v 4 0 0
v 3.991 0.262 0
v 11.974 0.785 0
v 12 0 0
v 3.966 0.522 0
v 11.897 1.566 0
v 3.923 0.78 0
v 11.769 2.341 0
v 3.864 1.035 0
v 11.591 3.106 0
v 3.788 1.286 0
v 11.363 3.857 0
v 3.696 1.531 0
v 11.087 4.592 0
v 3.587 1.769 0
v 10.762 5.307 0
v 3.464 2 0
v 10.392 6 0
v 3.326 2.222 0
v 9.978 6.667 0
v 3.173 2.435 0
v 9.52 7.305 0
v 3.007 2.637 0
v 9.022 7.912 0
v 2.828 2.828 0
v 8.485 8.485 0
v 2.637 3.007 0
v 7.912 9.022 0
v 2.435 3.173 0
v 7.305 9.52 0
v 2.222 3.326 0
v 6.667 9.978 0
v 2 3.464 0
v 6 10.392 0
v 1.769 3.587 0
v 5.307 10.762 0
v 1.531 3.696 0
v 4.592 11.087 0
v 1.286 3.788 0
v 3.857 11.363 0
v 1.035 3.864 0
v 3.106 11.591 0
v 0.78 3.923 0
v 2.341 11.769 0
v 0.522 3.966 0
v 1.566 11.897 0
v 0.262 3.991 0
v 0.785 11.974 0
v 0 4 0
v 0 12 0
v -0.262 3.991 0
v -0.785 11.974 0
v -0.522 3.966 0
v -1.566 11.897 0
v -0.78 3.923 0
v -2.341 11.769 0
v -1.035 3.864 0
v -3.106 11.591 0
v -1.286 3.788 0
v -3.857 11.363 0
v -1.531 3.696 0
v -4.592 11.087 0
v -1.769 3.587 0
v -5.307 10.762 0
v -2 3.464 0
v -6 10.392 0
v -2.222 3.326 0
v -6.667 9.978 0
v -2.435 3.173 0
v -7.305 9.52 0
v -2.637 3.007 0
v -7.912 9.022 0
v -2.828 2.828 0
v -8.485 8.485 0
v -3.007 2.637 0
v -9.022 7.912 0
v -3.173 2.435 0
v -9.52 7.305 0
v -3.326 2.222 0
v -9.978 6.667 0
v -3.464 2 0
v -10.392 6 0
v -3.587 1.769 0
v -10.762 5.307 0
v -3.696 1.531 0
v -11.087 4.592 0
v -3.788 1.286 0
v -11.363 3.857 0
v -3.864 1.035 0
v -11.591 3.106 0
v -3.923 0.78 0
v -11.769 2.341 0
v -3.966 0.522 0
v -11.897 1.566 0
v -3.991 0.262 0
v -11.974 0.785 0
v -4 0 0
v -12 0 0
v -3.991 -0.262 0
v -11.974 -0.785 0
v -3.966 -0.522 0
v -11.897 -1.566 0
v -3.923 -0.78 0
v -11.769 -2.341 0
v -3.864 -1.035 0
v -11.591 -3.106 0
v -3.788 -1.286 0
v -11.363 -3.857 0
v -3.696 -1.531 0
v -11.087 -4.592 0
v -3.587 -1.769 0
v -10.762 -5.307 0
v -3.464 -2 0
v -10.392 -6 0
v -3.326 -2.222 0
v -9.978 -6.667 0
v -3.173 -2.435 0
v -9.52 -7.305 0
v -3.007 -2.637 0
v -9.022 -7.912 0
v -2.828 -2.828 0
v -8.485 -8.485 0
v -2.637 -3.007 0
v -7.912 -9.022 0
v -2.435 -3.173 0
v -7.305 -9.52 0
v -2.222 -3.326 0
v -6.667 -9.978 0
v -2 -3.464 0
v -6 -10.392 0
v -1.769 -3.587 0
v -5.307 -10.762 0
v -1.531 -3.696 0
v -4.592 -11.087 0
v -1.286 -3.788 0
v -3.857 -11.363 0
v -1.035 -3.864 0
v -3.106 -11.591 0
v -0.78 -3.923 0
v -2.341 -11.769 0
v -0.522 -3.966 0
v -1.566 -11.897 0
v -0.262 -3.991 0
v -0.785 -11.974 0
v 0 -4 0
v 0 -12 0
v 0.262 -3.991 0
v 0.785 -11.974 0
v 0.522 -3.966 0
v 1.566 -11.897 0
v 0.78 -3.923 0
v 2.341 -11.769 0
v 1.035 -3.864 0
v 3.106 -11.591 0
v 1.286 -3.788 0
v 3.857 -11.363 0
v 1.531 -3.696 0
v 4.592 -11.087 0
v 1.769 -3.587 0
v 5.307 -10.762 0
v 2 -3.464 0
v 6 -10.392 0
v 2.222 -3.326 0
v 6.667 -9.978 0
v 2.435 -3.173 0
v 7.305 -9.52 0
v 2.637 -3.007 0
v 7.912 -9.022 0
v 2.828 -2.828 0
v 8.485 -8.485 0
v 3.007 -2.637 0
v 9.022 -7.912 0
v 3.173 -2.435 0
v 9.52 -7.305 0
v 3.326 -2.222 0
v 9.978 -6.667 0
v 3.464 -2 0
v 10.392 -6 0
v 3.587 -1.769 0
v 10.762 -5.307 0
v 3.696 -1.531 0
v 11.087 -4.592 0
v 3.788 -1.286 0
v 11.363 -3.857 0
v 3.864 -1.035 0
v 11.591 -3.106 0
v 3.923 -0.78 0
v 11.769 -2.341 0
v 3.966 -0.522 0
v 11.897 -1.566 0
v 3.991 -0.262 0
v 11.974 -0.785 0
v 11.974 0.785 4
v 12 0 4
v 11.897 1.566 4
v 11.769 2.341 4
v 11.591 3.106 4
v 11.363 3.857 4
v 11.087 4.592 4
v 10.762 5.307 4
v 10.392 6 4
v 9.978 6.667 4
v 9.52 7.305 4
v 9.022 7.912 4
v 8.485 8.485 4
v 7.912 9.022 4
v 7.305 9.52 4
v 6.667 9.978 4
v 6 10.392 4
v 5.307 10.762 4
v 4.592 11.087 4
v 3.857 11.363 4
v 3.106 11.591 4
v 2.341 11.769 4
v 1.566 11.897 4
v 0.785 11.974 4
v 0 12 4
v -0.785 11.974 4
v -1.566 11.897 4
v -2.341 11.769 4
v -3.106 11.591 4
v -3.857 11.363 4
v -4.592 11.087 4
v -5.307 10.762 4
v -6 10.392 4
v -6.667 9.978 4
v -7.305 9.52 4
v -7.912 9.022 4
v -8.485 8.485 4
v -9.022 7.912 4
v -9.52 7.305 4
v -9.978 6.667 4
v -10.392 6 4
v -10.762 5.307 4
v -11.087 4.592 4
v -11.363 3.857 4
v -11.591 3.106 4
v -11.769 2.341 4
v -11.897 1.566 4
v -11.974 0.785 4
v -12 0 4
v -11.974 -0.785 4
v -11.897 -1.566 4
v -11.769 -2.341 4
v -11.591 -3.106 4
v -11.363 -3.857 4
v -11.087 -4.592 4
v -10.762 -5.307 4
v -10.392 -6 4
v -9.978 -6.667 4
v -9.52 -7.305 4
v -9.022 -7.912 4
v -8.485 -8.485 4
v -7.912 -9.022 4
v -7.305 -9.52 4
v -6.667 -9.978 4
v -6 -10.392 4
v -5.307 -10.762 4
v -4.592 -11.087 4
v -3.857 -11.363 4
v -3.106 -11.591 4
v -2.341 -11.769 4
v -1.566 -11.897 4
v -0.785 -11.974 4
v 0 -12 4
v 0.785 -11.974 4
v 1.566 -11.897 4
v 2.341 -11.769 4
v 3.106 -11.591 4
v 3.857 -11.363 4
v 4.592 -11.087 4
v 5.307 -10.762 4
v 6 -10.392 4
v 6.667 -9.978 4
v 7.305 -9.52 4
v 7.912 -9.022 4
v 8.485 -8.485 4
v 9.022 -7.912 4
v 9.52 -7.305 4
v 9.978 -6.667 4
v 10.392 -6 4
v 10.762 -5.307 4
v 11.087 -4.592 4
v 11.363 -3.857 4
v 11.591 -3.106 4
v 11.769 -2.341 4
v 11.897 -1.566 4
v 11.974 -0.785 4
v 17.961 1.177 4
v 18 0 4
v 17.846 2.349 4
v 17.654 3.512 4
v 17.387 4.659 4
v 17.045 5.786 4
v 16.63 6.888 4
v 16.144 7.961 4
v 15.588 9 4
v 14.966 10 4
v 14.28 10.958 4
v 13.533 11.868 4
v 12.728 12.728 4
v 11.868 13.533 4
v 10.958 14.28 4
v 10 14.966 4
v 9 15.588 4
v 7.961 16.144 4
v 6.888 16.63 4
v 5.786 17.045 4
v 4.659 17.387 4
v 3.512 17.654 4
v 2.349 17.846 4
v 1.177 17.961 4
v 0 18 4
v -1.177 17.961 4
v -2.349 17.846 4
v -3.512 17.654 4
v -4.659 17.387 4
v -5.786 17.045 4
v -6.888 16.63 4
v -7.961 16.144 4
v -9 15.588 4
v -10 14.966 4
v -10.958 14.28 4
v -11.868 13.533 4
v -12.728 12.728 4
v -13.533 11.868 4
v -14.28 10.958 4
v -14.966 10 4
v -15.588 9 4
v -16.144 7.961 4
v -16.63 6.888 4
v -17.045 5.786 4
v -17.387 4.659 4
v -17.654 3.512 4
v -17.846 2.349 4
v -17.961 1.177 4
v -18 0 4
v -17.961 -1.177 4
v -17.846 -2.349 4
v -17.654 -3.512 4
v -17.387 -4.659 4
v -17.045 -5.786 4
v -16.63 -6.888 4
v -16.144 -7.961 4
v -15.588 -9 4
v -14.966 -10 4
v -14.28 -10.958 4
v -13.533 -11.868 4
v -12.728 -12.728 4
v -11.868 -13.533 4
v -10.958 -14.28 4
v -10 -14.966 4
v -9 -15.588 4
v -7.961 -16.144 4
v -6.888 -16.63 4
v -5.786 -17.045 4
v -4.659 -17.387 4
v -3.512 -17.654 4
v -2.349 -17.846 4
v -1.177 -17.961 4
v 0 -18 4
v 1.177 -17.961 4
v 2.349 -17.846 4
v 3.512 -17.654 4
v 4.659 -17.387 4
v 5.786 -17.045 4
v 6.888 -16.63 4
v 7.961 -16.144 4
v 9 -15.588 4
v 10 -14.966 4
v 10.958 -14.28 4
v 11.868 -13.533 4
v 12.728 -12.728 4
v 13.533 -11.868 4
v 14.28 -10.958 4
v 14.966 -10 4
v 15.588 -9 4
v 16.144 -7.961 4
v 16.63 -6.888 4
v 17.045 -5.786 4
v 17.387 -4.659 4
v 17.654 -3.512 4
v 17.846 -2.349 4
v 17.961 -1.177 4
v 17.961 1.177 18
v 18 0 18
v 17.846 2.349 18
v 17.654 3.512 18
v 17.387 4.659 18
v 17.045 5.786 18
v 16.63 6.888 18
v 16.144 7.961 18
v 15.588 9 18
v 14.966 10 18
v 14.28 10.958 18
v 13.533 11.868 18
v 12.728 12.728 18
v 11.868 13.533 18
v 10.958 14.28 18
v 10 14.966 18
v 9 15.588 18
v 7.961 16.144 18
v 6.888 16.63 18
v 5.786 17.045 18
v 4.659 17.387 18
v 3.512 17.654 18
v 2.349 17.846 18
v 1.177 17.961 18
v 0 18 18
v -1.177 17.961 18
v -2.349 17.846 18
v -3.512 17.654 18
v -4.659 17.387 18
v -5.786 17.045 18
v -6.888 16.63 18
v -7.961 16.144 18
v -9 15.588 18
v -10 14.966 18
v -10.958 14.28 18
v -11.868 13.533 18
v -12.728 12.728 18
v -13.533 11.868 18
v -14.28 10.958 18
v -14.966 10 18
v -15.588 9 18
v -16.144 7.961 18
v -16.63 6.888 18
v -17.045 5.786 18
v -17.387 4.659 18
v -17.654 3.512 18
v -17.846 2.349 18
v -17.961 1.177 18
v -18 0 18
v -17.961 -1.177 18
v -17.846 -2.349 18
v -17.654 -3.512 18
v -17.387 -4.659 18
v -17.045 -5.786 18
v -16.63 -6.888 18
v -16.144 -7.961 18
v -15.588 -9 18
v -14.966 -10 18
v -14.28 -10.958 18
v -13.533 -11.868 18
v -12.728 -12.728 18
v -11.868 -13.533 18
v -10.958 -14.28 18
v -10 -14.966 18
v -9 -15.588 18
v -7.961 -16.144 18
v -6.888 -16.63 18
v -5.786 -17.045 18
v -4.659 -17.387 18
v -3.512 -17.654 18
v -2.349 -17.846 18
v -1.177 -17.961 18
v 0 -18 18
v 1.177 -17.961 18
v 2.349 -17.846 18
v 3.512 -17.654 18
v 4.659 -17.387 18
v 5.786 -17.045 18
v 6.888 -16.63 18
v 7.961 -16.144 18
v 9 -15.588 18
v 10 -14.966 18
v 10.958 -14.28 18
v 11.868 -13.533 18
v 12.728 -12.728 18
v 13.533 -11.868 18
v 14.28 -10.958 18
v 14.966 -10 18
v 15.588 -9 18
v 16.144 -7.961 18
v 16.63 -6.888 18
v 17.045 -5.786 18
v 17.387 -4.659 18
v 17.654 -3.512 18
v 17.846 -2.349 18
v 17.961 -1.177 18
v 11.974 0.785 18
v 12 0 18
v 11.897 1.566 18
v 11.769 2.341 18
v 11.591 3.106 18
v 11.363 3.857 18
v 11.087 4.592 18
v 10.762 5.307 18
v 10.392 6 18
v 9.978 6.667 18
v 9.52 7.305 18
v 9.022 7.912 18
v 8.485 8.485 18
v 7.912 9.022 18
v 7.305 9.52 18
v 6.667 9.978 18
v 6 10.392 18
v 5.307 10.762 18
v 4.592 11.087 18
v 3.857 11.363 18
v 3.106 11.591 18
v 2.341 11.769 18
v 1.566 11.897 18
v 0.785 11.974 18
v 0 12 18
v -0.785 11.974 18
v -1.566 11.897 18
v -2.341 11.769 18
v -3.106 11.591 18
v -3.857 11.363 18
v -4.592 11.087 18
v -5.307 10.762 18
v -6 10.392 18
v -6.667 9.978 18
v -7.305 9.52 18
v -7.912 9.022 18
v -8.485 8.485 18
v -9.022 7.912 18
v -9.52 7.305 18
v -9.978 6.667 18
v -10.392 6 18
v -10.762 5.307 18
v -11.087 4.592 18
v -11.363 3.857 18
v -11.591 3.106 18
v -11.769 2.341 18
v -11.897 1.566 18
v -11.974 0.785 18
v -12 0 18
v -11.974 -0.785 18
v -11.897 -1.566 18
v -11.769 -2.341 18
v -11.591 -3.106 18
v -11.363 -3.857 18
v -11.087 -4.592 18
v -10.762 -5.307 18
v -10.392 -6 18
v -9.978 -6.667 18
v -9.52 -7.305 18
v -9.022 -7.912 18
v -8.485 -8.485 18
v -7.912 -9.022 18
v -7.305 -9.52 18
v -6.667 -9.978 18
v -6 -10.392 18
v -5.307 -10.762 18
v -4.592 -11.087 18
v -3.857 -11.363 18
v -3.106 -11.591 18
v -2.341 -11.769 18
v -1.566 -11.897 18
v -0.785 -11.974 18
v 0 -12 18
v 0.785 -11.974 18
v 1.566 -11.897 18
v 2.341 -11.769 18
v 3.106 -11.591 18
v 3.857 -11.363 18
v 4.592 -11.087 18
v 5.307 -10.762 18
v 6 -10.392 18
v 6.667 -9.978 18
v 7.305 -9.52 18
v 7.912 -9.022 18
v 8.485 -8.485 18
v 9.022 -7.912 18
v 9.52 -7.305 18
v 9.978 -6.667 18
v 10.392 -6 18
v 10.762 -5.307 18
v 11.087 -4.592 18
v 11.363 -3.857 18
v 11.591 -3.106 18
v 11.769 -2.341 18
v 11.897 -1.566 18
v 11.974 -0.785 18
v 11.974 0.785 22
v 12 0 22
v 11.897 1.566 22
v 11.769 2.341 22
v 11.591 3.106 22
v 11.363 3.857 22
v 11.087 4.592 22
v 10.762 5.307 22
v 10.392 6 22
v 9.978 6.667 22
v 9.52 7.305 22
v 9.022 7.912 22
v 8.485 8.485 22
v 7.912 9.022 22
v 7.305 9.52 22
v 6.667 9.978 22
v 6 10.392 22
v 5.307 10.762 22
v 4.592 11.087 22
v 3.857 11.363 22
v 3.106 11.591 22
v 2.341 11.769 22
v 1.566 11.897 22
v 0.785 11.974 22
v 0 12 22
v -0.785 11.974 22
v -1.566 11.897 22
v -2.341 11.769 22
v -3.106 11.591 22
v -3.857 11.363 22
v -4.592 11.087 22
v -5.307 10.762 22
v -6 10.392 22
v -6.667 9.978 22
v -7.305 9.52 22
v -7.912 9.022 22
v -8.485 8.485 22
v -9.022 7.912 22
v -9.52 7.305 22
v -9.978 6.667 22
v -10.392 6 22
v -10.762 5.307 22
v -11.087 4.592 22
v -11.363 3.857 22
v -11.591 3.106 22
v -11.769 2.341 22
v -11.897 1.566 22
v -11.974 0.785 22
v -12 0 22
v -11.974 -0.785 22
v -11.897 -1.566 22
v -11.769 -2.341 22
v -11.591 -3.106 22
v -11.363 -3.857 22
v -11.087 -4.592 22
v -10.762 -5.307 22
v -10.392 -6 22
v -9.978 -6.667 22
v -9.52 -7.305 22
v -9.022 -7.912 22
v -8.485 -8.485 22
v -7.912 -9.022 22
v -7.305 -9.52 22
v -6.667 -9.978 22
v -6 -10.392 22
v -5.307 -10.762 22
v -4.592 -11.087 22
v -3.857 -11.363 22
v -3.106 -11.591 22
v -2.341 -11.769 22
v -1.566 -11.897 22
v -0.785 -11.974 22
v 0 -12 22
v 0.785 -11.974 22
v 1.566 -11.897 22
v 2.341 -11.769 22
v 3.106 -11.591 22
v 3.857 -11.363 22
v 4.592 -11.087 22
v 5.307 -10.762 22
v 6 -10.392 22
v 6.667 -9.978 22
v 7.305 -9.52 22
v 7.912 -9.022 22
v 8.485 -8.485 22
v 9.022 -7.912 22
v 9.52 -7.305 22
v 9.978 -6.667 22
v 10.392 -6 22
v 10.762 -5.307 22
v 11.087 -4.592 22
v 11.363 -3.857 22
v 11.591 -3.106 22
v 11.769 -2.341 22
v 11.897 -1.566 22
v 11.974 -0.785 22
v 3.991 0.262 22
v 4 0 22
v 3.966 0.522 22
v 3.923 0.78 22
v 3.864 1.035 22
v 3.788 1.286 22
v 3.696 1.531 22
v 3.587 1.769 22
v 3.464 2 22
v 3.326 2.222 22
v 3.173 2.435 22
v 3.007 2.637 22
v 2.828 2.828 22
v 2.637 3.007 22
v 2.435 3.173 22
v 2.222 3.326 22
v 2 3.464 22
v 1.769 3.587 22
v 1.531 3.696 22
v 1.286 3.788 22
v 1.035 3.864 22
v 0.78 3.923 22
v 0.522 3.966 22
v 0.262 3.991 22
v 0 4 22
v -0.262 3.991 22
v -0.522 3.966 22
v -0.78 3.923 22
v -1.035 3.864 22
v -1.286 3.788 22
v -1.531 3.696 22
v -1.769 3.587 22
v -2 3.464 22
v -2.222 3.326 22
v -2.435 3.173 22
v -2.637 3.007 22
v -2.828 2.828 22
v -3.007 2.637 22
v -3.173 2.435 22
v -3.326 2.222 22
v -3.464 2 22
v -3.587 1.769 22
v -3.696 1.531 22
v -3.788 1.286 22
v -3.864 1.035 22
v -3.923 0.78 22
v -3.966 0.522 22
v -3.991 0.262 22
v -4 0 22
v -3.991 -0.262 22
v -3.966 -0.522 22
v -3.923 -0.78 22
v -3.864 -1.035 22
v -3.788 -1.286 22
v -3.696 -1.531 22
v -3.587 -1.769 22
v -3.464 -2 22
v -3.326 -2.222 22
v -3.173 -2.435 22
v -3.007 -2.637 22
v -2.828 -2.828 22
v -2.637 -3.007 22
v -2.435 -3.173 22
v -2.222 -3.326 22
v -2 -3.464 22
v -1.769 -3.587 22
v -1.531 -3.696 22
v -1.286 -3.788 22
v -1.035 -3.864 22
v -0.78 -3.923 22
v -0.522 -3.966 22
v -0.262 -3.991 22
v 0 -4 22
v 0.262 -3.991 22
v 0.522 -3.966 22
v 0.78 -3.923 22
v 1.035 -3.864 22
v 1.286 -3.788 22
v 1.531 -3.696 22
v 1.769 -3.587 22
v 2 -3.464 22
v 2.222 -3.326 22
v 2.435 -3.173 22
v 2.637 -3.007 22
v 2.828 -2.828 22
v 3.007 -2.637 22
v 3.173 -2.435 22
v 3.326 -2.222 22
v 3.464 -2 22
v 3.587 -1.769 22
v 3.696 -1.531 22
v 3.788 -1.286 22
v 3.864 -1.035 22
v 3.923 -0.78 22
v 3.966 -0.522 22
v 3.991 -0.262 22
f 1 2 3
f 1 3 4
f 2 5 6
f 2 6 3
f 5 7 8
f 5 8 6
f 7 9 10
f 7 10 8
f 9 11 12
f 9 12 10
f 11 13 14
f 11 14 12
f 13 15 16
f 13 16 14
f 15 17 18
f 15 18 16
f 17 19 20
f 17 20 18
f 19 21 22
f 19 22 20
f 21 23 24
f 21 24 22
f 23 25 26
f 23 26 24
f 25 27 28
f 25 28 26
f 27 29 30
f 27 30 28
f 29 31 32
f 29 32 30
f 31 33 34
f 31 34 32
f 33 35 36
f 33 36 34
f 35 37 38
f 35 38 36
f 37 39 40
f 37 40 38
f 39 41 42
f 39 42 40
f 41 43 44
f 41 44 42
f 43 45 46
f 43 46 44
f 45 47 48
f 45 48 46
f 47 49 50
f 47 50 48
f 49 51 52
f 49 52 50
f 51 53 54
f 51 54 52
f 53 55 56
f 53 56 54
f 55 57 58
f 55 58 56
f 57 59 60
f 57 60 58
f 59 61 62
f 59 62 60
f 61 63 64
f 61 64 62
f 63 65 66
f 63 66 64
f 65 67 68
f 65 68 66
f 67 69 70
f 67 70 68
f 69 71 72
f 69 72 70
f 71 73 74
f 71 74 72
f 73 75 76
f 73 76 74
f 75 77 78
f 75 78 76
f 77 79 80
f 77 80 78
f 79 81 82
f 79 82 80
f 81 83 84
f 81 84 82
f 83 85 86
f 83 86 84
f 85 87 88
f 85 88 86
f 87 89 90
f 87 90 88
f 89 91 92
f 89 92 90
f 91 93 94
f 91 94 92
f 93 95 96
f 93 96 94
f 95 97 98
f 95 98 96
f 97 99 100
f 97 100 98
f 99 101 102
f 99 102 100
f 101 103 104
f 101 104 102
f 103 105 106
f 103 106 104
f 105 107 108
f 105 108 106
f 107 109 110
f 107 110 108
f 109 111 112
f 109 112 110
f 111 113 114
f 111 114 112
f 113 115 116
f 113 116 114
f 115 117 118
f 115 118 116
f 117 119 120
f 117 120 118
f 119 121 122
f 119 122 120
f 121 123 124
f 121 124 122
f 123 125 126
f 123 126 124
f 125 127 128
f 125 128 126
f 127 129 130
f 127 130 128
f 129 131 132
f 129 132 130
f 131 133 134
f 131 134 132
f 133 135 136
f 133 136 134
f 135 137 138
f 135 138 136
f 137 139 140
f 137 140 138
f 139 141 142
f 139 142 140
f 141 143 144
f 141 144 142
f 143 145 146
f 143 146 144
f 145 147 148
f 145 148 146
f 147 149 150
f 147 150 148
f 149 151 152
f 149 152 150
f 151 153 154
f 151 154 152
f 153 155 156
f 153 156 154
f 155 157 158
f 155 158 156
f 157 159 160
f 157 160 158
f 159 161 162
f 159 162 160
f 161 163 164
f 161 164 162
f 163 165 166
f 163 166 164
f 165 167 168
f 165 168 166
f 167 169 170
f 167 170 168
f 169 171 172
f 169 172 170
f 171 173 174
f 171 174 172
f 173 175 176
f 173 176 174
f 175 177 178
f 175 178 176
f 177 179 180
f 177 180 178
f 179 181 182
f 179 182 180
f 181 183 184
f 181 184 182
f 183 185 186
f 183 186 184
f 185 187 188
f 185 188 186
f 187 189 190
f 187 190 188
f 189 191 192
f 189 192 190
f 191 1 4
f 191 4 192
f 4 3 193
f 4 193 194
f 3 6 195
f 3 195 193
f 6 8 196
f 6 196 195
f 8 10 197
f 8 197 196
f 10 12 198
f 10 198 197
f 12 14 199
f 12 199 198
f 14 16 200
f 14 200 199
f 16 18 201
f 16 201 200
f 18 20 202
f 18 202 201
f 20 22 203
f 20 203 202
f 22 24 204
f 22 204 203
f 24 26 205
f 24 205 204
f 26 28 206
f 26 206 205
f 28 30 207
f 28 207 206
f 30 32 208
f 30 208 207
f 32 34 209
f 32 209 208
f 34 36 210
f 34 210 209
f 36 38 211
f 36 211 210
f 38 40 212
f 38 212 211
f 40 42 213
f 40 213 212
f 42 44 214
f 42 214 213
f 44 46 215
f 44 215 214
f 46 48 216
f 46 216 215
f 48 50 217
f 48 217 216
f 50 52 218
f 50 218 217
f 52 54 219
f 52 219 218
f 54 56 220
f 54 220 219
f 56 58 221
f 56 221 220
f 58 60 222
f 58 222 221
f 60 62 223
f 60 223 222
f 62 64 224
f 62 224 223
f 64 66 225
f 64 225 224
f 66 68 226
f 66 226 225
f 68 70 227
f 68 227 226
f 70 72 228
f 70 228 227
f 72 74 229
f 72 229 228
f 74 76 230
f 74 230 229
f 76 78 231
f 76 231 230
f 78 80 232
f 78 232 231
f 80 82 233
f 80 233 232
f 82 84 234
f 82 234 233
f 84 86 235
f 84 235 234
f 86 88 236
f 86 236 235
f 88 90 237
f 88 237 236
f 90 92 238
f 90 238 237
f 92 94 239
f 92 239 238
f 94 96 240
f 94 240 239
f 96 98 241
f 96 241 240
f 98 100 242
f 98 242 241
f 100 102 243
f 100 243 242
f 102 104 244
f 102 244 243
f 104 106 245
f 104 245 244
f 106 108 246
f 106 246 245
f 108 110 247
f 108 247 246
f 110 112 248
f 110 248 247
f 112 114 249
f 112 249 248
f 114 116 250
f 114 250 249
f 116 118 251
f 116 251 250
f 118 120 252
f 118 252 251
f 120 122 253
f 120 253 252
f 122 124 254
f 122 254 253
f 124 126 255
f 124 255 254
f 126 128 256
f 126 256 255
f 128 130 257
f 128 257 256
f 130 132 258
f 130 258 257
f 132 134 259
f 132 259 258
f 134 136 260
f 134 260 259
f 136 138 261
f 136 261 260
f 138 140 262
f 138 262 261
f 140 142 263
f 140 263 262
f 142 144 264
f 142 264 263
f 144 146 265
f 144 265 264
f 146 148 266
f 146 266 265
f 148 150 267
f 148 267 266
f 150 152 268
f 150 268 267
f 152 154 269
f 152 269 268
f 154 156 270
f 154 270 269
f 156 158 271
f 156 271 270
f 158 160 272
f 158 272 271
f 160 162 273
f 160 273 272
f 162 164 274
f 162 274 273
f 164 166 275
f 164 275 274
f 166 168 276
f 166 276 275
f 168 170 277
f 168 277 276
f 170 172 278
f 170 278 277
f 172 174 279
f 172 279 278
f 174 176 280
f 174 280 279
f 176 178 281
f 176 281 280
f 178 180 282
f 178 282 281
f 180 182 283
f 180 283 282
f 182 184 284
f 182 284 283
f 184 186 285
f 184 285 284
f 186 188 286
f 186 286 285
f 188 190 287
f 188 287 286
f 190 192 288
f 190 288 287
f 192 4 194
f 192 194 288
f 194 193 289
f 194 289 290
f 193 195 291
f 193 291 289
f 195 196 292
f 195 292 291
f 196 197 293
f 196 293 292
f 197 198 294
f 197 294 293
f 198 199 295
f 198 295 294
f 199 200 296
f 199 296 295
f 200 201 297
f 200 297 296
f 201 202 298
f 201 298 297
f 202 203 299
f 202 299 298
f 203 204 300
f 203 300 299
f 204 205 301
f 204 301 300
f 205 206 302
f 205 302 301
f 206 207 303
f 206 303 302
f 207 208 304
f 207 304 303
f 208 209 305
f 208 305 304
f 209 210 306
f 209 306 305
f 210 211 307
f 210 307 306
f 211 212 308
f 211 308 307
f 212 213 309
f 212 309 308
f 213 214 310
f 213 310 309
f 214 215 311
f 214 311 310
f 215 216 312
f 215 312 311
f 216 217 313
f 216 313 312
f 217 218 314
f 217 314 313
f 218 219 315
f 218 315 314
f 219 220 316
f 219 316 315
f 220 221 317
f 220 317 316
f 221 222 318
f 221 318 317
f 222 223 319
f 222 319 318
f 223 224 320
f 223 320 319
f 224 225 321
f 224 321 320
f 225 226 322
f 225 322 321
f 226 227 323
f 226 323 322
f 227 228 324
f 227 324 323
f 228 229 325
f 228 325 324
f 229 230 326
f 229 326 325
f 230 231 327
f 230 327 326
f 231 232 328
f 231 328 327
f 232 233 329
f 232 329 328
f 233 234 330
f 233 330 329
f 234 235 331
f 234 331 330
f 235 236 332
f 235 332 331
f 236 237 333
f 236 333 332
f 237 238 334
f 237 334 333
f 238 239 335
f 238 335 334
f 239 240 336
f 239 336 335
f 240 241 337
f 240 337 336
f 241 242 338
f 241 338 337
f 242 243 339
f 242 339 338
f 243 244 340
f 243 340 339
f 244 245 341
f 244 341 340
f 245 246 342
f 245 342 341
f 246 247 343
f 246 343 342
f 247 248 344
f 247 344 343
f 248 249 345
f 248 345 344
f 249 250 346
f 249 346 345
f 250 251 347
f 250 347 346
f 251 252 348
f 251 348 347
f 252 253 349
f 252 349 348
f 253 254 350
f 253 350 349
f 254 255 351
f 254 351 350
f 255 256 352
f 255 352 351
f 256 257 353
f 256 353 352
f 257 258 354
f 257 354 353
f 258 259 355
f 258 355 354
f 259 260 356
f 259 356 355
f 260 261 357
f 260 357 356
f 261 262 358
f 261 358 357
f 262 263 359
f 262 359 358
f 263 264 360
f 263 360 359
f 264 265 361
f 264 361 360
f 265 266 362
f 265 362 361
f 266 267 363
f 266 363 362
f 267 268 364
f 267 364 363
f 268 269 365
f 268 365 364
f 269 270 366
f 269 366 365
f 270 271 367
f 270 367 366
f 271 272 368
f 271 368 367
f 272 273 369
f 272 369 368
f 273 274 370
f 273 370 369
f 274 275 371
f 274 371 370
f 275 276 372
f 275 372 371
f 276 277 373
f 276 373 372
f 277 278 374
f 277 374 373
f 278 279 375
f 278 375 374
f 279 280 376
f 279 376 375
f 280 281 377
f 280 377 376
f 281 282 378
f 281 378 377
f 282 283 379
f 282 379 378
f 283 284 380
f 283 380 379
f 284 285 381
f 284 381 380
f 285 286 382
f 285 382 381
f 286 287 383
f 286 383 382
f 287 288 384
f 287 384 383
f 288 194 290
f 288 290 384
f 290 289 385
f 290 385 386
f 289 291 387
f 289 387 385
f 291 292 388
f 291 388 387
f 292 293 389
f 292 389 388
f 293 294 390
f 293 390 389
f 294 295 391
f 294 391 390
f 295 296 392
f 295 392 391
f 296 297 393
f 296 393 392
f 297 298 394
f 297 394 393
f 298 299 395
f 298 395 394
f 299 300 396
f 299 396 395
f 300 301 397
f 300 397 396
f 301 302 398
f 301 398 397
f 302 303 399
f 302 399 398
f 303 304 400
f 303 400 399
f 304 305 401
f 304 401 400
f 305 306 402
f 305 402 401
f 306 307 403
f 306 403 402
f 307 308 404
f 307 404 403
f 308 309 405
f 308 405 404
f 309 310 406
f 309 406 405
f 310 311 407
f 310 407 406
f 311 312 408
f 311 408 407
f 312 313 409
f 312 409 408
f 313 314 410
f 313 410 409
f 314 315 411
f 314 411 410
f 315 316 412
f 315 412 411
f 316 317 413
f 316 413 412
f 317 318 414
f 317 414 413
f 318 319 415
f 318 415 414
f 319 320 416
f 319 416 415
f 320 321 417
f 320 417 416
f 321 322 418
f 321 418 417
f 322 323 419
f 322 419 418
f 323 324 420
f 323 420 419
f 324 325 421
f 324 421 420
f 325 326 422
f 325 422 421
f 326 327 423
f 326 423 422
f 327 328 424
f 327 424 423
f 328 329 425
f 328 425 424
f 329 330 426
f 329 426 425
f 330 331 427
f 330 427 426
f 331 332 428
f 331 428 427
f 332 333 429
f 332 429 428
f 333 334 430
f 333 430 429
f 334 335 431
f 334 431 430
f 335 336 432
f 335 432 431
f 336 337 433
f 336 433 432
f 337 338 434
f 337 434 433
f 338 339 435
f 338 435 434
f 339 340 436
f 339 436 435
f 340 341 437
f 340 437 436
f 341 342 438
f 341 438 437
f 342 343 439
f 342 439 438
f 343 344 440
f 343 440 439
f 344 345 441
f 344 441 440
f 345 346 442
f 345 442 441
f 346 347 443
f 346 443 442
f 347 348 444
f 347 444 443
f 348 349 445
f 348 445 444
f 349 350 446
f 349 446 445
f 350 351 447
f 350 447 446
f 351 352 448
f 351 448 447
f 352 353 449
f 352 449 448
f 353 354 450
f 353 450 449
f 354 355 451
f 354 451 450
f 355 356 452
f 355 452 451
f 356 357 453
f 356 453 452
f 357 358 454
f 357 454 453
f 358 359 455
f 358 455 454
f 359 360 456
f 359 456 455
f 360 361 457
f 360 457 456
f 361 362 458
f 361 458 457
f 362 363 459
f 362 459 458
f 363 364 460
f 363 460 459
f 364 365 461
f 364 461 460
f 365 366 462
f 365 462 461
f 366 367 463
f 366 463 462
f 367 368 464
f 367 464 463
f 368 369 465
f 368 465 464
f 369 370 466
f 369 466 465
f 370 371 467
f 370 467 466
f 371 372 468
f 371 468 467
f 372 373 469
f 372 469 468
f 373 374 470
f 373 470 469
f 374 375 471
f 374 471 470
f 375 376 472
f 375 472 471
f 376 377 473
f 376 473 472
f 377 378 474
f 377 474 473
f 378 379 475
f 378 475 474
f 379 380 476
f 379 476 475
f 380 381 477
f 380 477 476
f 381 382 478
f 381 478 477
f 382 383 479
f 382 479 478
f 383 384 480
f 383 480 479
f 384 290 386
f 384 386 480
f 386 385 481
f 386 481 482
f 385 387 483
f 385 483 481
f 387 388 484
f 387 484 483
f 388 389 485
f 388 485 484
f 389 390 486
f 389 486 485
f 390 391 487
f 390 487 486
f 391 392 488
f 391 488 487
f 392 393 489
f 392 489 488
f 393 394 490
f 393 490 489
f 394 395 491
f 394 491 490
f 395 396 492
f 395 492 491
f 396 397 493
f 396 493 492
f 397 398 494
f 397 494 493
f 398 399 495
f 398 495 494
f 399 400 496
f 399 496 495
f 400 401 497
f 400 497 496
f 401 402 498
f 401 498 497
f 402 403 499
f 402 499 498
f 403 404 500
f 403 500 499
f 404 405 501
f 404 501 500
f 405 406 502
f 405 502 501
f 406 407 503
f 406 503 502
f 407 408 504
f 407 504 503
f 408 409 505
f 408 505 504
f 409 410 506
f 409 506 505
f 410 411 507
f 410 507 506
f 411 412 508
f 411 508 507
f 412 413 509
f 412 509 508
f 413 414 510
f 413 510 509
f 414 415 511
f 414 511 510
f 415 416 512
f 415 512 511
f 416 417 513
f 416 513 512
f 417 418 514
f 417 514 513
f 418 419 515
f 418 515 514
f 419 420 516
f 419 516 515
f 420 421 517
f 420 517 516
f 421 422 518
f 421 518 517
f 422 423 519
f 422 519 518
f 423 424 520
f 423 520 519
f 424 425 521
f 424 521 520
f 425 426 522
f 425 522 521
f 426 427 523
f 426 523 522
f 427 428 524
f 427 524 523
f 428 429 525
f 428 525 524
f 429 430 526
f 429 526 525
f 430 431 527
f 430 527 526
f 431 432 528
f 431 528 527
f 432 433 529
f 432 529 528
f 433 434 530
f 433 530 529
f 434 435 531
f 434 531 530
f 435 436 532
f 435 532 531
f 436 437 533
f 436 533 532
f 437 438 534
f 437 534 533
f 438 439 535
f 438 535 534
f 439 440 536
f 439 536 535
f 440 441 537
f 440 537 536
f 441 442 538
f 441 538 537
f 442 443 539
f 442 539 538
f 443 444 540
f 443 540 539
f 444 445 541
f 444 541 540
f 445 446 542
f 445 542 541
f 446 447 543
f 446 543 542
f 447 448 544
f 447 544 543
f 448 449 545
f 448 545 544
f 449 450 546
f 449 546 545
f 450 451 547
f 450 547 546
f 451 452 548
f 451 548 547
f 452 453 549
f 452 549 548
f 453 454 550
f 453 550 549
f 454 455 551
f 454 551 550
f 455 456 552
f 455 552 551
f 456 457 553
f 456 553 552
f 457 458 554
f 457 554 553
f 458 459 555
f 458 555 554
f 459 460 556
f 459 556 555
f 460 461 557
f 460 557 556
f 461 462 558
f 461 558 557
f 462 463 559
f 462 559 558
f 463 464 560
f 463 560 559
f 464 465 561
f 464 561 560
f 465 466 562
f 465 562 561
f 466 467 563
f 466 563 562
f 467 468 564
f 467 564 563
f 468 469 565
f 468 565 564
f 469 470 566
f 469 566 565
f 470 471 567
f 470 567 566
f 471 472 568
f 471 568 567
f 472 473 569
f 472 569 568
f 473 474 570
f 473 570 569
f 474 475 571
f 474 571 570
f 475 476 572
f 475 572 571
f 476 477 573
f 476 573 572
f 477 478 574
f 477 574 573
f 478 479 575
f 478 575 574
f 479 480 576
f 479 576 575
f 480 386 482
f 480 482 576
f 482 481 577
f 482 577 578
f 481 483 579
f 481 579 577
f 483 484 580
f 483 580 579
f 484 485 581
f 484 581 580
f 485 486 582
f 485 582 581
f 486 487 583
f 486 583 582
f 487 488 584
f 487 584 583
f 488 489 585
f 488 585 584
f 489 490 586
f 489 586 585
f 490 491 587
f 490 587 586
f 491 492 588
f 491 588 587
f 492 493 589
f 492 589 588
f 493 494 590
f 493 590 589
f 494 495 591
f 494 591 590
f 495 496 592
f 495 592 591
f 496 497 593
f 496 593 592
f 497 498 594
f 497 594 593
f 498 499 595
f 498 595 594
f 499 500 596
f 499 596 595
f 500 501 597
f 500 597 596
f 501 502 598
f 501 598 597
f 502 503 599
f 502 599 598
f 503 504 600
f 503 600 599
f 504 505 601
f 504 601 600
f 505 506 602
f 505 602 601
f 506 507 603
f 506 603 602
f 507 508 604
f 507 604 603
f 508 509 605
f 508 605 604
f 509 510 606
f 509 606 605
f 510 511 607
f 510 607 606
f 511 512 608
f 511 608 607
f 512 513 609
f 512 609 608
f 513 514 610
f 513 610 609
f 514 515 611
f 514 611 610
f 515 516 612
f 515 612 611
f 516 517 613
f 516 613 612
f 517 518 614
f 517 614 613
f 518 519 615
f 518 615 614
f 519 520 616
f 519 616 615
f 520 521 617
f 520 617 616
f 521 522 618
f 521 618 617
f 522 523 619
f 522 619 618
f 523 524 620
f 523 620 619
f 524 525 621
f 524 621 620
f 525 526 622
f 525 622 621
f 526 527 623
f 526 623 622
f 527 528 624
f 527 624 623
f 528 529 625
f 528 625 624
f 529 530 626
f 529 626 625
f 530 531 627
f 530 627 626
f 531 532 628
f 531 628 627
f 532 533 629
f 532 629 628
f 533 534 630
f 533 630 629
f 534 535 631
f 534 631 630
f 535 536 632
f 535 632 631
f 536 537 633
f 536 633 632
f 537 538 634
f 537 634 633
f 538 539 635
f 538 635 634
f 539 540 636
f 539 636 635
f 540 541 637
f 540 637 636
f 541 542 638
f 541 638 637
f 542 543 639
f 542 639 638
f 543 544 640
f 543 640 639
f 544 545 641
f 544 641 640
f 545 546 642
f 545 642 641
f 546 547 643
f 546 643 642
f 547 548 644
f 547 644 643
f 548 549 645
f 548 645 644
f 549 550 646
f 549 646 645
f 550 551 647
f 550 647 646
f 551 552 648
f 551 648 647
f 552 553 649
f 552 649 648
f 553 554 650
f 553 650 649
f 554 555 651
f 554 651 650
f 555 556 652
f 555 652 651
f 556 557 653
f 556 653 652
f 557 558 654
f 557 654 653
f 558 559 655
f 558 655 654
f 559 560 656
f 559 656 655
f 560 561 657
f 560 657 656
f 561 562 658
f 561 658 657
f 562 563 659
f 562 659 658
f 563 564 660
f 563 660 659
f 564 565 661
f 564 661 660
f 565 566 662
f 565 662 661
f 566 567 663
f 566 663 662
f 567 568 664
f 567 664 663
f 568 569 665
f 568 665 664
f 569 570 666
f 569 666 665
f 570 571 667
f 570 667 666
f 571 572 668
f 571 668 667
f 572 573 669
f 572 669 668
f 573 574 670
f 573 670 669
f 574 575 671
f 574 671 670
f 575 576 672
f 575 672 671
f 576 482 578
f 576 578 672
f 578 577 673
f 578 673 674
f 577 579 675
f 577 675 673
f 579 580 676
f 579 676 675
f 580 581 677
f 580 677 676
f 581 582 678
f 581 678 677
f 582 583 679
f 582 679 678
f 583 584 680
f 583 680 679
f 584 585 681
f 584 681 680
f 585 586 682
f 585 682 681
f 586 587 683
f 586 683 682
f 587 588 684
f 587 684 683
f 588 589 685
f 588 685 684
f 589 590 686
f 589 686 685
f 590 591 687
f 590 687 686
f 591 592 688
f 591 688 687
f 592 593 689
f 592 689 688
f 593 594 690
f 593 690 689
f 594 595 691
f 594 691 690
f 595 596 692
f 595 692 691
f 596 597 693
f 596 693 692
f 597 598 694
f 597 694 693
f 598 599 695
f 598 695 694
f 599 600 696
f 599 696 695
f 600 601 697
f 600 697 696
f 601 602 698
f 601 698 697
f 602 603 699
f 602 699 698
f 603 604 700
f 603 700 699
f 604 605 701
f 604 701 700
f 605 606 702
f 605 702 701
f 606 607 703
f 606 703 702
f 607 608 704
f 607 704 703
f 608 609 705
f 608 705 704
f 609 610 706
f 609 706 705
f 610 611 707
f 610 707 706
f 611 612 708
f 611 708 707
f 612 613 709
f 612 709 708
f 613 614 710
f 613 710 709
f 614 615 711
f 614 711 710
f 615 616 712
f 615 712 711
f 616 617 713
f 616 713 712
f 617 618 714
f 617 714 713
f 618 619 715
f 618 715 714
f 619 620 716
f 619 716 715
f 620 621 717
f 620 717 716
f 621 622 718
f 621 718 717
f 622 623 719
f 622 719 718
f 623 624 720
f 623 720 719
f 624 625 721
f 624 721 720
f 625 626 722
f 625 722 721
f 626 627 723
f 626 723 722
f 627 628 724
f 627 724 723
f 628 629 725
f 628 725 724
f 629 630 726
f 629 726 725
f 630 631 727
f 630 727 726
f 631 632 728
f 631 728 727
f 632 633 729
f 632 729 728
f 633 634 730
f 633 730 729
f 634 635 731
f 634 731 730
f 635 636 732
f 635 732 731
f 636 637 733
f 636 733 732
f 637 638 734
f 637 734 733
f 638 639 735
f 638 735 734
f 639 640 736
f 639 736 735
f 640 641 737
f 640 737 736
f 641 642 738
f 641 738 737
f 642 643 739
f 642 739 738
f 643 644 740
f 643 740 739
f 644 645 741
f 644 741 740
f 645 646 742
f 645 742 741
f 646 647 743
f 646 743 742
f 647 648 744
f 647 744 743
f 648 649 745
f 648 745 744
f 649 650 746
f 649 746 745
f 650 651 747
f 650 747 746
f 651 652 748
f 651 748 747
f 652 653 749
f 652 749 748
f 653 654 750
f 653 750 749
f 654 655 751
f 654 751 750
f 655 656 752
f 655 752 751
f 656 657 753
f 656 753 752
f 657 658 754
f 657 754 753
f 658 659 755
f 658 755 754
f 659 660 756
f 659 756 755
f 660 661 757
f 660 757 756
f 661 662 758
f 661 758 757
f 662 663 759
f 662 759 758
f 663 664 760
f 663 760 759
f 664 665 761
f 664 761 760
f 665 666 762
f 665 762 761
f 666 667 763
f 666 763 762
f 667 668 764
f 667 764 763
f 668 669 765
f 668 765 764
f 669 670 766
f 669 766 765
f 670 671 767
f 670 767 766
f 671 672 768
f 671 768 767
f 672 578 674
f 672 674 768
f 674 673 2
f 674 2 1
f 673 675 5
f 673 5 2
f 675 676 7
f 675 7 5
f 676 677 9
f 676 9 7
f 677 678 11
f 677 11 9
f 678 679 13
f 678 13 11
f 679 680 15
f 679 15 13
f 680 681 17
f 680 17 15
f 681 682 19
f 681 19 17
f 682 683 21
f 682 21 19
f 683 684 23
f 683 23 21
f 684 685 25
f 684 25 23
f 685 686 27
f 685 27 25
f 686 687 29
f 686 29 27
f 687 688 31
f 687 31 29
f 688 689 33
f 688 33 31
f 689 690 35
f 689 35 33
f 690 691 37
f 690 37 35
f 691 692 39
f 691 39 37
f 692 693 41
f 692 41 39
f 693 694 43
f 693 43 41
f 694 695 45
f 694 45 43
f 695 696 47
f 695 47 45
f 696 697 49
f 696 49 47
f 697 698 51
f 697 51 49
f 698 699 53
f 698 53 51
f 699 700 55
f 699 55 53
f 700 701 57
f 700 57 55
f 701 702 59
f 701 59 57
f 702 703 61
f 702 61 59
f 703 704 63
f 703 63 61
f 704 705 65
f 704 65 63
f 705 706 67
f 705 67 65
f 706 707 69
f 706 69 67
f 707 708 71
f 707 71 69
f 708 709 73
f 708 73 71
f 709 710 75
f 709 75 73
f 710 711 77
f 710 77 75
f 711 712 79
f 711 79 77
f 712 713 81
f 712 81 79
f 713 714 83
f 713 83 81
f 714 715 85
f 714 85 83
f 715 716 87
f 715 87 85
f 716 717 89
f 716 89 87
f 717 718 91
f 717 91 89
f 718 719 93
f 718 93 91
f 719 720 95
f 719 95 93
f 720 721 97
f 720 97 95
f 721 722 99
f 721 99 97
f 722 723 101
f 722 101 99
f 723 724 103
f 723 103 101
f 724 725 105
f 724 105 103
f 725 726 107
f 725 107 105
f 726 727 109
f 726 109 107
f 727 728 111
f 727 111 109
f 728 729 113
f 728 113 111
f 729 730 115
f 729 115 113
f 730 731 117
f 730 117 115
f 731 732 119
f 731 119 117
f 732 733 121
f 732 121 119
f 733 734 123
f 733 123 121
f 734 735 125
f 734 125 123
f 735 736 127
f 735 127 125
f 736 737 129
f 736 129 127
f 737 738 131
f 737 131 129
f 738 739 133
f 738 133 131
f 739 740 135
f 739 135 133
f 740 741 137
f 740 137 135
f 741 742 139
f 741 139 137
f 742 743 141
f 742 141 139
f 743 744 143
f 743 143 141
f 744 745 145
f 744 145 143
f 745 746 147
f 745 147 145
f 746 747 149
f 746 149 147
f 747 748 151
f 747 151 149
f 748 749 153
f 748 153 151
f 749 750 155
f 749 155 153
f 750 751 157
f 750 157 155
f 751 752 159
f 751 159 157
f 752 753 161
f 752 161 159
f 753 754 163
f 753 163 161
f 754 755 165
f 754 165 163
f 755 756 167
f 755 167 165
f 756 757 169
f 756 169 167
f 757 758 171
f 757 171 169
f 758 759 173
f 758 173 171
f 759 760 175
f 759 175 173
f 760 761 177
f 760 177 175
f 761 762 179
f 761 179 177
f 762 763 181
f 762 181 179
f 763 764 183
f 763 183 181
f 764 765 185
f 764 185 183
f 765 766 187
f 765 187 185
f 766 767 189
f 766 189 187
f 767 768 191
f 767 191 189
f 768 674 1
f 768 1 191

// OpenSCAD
// Original MechIntel educational model. CC0-1.0. Units: mm.
// Not a standardized or load-rated component.
$fn=96;
// Section points: [radius, height], mm. Edit to change the profile.
section=[[4, 0], [12, 0], [12, 4], [18, 4], [18, 18], [12, 18], [12, 22], [4, 22]];
rotate_extrude($fn=96) polygon(points=section);
